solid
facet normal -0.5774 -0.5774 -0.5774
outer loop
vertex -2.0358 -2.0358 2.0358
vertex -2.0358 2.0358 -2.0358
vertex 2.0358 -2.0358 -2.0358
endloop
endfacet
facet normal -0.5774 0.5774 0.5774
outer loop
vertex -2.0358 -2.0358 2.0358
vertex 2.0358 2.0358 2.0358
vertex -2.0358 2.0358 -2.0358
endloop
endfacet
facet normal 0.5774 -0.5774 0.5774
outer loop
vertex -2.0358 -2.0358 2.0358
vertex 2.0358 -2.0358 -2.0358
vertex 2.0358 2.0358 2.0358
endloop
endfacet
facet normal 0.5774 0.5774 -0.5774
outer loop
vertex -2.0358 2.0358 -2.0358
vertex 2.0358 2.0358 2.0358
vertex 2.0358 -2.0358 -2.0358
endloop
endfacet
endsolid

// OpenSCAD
// file: ../maths_geodesic.scad
/*
	License: This code is placed in the public Domain
	Contributed By: Willliam A Adams
	August 2011
*/

// A couple of useful constants
Cpi = 3.14159;
Cphi = 1.61803399;
Cepsilon = 0.00000001;

 
// Function: clean
//
// Parameters:
//	n - A number that might be very close to zero
// Description:  
//	There are times when you want a very small number to 
// 	just be zero, instead of being that very small number.
//	This function will compare the number to an arbitrarily small 
//	number.  If it is smaller than the 'epsilon', then zero will be 
// 	returned.  Otherwise, the original number will be returned.
//

function clean(n) = (n < 0) ? ((n < -Cepsilon) ? n : 0) : 
	(n < Cepsilon) ? 0 : n; 

// Function: safediv
//
// Parameters
//	n - The numerator
//	d - The denominator
//
// Description:
//	Since division by zero is generally not a desirable thing, safediv
//	will return '0' whenever there is a division by zero.  Although this will
//	mask some erroneous division by zero errors, it is often the case
//	that you actually want this behavior.  So, it makes it convenient.
function safediv(n,d) = (d==0) ? 0 : n/d;


//==================================
// Degrees
//==================================

function DEGREES(radians) = (180/Cpi) * radians;

function RADIANS(degrees) = Cpi/180 * degrees;

function deg(deg, min=0, sec=0) = [deg, min, sec];

function deg_to_dec(d) = d[0] + d[1]/60 + d[2]/60/60;


//==================================
//  Spherical coordinates
//==================================

// create an instance of a spherical coordinate
// long - rotation around z -axis
// lat - latitude, starting at 0 == 'north pole'
// rad - distance from center
function sph(long, lat, rad=1) = [long, lat, rad];

// Convert spherical to cartesian
function sph_to_cart(s) = [
	clean(s[2]*sin(s[1])*cos(s[0])),  
	clean(s[2]*sin(s[1])*sin(s[0])),
	clean(s[2]*cos(s[1]))
	];

// Convert from cartesian to spherical
function sph_from_cart(c) = sph(
	atan2(c[1],c[0]), 
	atan2(sqrt(c[0]*c[0]+c[1]*c[1]), c[2]), 
	sqrt(c[0]*c[0]+c[1]*c[1]+c[2]*c[2])
	);

function sphu_from_cart(c, rad=1) = sph(
	atan2(c[1],c[0]), 
	atan2(sqrt(c[0]*c[0]+c[1]*c[1]), c[2]), 
	rad
	);

// compute the chord distance between two points on a sphere
function sph_dist(c1, c2) = sqrt(
	c1[2]*c1[2] + c2[2]*c2[2] - 
	2*c1[2]*c2[2]*
	((cos(c1[1])*cos(c2[1])) + cos(c1[0]-c2[0])*sin(c1[1])*sin(c2[1]))   
	);


//==========================================
//	Geodesic calculations
// 
//  Reference: Geodesic Math and How to Use It
//  By: Hugh Kenner
//  Second Paperback Edition (2003), p.74-75
//  http://www.amazon.com/Geodesic-Math-How-Hugh-Kenner/dp/0520239318
//
//  The book was used for reference, so if you want to check the math, 
//  you can plug in various numbers to various routines and see if you get
//  the same numbers in the book.
//
//  In general, there are enough routines here to implement the various
//  pieces necessary to make geodesic objects.
//==========================================

function poly_sum_interior_angles(sides) = (sides-2)*180;
function poly_single_interior_angle(pq) = poly_sum_interior_angles(pq[0])/pq[0];



// Given a set of coordinates, return the frequency
// Simply calculated by adding up the values of the coordinates
function geo_freq(xyz) = xyz[0]+xyz[1]+xyz[2];

// Convert between the 2D coordinates of vertices on the face triangle
// to the 3D vertices needed to calculate spherical coordinates
function geo_tri2_tri3(xyf) = [xyf[1], xyf[0]-xyf[1], xyf[2]-xyf[0]];

// Given coordinates for a vertex on the octahedron face
// return the spherical coordinates for the vertex
// class 1, method 1
function octa_class1(c) = sph(
	atan(safediv(c[0], c[1])),
	atan(sqrt(c[0]*c[0]+c[1]*c[1])/c[2]),
	1 
	);

function octa_class2(c) = sph(
	atan(c[0]/c[1]),
	atan( sqrt( 2*(c[0]*c[0]+c[1]*c[1])) /c[2]),
	1 
	);

function icosa_class1(c) = octa_class1(
	[
		c[0]*sin(72),  
		c[1]+c[0]*cos(72),  
		geo_freq(c)/2+c[2]/Cphi
	]);

function icosa_class2(c) = sph(
	atan([c0]/c[1]), 
	atan(sqrt(c[0]*c[0]+c[1]*c[1]))/cos(36)*c[2],
	1
	);
 
function tetra_class1(c) = octa_class1(
	[
		sqrt(3*c[0]),  
		2*c[1]-c[0],  
		(3*c[2]-c[0]-c[1])/sqrt(2)
	]);

function class1_icosa_chord_factor(v1, v2, freq) = sph_dist( 
		icosa_class1(geo_tri2_tri3( [v1[0], v1[1], freq])),
		icosa_class1(geo_tri2_tri3( [v2[0], v2[1], freq]))
	);
// main file
// file autogenerated by platonicSTLgen
// author: thanasi athanassiadis (thanasi@uchicago.edu)
// august 25, 2012

include <../platonic.scad>

// units are mm

rad = 3.526132;

poly = tetrahedron(rad);

for(i = [ [0.000000,0.000000,0.000000] ])
{
    translate(i)
    display_polyhedron(poly);
}

module display_polyhedron(poly) 
{
polyhedron(points = poly[0], triangles = poly[1]);
}
